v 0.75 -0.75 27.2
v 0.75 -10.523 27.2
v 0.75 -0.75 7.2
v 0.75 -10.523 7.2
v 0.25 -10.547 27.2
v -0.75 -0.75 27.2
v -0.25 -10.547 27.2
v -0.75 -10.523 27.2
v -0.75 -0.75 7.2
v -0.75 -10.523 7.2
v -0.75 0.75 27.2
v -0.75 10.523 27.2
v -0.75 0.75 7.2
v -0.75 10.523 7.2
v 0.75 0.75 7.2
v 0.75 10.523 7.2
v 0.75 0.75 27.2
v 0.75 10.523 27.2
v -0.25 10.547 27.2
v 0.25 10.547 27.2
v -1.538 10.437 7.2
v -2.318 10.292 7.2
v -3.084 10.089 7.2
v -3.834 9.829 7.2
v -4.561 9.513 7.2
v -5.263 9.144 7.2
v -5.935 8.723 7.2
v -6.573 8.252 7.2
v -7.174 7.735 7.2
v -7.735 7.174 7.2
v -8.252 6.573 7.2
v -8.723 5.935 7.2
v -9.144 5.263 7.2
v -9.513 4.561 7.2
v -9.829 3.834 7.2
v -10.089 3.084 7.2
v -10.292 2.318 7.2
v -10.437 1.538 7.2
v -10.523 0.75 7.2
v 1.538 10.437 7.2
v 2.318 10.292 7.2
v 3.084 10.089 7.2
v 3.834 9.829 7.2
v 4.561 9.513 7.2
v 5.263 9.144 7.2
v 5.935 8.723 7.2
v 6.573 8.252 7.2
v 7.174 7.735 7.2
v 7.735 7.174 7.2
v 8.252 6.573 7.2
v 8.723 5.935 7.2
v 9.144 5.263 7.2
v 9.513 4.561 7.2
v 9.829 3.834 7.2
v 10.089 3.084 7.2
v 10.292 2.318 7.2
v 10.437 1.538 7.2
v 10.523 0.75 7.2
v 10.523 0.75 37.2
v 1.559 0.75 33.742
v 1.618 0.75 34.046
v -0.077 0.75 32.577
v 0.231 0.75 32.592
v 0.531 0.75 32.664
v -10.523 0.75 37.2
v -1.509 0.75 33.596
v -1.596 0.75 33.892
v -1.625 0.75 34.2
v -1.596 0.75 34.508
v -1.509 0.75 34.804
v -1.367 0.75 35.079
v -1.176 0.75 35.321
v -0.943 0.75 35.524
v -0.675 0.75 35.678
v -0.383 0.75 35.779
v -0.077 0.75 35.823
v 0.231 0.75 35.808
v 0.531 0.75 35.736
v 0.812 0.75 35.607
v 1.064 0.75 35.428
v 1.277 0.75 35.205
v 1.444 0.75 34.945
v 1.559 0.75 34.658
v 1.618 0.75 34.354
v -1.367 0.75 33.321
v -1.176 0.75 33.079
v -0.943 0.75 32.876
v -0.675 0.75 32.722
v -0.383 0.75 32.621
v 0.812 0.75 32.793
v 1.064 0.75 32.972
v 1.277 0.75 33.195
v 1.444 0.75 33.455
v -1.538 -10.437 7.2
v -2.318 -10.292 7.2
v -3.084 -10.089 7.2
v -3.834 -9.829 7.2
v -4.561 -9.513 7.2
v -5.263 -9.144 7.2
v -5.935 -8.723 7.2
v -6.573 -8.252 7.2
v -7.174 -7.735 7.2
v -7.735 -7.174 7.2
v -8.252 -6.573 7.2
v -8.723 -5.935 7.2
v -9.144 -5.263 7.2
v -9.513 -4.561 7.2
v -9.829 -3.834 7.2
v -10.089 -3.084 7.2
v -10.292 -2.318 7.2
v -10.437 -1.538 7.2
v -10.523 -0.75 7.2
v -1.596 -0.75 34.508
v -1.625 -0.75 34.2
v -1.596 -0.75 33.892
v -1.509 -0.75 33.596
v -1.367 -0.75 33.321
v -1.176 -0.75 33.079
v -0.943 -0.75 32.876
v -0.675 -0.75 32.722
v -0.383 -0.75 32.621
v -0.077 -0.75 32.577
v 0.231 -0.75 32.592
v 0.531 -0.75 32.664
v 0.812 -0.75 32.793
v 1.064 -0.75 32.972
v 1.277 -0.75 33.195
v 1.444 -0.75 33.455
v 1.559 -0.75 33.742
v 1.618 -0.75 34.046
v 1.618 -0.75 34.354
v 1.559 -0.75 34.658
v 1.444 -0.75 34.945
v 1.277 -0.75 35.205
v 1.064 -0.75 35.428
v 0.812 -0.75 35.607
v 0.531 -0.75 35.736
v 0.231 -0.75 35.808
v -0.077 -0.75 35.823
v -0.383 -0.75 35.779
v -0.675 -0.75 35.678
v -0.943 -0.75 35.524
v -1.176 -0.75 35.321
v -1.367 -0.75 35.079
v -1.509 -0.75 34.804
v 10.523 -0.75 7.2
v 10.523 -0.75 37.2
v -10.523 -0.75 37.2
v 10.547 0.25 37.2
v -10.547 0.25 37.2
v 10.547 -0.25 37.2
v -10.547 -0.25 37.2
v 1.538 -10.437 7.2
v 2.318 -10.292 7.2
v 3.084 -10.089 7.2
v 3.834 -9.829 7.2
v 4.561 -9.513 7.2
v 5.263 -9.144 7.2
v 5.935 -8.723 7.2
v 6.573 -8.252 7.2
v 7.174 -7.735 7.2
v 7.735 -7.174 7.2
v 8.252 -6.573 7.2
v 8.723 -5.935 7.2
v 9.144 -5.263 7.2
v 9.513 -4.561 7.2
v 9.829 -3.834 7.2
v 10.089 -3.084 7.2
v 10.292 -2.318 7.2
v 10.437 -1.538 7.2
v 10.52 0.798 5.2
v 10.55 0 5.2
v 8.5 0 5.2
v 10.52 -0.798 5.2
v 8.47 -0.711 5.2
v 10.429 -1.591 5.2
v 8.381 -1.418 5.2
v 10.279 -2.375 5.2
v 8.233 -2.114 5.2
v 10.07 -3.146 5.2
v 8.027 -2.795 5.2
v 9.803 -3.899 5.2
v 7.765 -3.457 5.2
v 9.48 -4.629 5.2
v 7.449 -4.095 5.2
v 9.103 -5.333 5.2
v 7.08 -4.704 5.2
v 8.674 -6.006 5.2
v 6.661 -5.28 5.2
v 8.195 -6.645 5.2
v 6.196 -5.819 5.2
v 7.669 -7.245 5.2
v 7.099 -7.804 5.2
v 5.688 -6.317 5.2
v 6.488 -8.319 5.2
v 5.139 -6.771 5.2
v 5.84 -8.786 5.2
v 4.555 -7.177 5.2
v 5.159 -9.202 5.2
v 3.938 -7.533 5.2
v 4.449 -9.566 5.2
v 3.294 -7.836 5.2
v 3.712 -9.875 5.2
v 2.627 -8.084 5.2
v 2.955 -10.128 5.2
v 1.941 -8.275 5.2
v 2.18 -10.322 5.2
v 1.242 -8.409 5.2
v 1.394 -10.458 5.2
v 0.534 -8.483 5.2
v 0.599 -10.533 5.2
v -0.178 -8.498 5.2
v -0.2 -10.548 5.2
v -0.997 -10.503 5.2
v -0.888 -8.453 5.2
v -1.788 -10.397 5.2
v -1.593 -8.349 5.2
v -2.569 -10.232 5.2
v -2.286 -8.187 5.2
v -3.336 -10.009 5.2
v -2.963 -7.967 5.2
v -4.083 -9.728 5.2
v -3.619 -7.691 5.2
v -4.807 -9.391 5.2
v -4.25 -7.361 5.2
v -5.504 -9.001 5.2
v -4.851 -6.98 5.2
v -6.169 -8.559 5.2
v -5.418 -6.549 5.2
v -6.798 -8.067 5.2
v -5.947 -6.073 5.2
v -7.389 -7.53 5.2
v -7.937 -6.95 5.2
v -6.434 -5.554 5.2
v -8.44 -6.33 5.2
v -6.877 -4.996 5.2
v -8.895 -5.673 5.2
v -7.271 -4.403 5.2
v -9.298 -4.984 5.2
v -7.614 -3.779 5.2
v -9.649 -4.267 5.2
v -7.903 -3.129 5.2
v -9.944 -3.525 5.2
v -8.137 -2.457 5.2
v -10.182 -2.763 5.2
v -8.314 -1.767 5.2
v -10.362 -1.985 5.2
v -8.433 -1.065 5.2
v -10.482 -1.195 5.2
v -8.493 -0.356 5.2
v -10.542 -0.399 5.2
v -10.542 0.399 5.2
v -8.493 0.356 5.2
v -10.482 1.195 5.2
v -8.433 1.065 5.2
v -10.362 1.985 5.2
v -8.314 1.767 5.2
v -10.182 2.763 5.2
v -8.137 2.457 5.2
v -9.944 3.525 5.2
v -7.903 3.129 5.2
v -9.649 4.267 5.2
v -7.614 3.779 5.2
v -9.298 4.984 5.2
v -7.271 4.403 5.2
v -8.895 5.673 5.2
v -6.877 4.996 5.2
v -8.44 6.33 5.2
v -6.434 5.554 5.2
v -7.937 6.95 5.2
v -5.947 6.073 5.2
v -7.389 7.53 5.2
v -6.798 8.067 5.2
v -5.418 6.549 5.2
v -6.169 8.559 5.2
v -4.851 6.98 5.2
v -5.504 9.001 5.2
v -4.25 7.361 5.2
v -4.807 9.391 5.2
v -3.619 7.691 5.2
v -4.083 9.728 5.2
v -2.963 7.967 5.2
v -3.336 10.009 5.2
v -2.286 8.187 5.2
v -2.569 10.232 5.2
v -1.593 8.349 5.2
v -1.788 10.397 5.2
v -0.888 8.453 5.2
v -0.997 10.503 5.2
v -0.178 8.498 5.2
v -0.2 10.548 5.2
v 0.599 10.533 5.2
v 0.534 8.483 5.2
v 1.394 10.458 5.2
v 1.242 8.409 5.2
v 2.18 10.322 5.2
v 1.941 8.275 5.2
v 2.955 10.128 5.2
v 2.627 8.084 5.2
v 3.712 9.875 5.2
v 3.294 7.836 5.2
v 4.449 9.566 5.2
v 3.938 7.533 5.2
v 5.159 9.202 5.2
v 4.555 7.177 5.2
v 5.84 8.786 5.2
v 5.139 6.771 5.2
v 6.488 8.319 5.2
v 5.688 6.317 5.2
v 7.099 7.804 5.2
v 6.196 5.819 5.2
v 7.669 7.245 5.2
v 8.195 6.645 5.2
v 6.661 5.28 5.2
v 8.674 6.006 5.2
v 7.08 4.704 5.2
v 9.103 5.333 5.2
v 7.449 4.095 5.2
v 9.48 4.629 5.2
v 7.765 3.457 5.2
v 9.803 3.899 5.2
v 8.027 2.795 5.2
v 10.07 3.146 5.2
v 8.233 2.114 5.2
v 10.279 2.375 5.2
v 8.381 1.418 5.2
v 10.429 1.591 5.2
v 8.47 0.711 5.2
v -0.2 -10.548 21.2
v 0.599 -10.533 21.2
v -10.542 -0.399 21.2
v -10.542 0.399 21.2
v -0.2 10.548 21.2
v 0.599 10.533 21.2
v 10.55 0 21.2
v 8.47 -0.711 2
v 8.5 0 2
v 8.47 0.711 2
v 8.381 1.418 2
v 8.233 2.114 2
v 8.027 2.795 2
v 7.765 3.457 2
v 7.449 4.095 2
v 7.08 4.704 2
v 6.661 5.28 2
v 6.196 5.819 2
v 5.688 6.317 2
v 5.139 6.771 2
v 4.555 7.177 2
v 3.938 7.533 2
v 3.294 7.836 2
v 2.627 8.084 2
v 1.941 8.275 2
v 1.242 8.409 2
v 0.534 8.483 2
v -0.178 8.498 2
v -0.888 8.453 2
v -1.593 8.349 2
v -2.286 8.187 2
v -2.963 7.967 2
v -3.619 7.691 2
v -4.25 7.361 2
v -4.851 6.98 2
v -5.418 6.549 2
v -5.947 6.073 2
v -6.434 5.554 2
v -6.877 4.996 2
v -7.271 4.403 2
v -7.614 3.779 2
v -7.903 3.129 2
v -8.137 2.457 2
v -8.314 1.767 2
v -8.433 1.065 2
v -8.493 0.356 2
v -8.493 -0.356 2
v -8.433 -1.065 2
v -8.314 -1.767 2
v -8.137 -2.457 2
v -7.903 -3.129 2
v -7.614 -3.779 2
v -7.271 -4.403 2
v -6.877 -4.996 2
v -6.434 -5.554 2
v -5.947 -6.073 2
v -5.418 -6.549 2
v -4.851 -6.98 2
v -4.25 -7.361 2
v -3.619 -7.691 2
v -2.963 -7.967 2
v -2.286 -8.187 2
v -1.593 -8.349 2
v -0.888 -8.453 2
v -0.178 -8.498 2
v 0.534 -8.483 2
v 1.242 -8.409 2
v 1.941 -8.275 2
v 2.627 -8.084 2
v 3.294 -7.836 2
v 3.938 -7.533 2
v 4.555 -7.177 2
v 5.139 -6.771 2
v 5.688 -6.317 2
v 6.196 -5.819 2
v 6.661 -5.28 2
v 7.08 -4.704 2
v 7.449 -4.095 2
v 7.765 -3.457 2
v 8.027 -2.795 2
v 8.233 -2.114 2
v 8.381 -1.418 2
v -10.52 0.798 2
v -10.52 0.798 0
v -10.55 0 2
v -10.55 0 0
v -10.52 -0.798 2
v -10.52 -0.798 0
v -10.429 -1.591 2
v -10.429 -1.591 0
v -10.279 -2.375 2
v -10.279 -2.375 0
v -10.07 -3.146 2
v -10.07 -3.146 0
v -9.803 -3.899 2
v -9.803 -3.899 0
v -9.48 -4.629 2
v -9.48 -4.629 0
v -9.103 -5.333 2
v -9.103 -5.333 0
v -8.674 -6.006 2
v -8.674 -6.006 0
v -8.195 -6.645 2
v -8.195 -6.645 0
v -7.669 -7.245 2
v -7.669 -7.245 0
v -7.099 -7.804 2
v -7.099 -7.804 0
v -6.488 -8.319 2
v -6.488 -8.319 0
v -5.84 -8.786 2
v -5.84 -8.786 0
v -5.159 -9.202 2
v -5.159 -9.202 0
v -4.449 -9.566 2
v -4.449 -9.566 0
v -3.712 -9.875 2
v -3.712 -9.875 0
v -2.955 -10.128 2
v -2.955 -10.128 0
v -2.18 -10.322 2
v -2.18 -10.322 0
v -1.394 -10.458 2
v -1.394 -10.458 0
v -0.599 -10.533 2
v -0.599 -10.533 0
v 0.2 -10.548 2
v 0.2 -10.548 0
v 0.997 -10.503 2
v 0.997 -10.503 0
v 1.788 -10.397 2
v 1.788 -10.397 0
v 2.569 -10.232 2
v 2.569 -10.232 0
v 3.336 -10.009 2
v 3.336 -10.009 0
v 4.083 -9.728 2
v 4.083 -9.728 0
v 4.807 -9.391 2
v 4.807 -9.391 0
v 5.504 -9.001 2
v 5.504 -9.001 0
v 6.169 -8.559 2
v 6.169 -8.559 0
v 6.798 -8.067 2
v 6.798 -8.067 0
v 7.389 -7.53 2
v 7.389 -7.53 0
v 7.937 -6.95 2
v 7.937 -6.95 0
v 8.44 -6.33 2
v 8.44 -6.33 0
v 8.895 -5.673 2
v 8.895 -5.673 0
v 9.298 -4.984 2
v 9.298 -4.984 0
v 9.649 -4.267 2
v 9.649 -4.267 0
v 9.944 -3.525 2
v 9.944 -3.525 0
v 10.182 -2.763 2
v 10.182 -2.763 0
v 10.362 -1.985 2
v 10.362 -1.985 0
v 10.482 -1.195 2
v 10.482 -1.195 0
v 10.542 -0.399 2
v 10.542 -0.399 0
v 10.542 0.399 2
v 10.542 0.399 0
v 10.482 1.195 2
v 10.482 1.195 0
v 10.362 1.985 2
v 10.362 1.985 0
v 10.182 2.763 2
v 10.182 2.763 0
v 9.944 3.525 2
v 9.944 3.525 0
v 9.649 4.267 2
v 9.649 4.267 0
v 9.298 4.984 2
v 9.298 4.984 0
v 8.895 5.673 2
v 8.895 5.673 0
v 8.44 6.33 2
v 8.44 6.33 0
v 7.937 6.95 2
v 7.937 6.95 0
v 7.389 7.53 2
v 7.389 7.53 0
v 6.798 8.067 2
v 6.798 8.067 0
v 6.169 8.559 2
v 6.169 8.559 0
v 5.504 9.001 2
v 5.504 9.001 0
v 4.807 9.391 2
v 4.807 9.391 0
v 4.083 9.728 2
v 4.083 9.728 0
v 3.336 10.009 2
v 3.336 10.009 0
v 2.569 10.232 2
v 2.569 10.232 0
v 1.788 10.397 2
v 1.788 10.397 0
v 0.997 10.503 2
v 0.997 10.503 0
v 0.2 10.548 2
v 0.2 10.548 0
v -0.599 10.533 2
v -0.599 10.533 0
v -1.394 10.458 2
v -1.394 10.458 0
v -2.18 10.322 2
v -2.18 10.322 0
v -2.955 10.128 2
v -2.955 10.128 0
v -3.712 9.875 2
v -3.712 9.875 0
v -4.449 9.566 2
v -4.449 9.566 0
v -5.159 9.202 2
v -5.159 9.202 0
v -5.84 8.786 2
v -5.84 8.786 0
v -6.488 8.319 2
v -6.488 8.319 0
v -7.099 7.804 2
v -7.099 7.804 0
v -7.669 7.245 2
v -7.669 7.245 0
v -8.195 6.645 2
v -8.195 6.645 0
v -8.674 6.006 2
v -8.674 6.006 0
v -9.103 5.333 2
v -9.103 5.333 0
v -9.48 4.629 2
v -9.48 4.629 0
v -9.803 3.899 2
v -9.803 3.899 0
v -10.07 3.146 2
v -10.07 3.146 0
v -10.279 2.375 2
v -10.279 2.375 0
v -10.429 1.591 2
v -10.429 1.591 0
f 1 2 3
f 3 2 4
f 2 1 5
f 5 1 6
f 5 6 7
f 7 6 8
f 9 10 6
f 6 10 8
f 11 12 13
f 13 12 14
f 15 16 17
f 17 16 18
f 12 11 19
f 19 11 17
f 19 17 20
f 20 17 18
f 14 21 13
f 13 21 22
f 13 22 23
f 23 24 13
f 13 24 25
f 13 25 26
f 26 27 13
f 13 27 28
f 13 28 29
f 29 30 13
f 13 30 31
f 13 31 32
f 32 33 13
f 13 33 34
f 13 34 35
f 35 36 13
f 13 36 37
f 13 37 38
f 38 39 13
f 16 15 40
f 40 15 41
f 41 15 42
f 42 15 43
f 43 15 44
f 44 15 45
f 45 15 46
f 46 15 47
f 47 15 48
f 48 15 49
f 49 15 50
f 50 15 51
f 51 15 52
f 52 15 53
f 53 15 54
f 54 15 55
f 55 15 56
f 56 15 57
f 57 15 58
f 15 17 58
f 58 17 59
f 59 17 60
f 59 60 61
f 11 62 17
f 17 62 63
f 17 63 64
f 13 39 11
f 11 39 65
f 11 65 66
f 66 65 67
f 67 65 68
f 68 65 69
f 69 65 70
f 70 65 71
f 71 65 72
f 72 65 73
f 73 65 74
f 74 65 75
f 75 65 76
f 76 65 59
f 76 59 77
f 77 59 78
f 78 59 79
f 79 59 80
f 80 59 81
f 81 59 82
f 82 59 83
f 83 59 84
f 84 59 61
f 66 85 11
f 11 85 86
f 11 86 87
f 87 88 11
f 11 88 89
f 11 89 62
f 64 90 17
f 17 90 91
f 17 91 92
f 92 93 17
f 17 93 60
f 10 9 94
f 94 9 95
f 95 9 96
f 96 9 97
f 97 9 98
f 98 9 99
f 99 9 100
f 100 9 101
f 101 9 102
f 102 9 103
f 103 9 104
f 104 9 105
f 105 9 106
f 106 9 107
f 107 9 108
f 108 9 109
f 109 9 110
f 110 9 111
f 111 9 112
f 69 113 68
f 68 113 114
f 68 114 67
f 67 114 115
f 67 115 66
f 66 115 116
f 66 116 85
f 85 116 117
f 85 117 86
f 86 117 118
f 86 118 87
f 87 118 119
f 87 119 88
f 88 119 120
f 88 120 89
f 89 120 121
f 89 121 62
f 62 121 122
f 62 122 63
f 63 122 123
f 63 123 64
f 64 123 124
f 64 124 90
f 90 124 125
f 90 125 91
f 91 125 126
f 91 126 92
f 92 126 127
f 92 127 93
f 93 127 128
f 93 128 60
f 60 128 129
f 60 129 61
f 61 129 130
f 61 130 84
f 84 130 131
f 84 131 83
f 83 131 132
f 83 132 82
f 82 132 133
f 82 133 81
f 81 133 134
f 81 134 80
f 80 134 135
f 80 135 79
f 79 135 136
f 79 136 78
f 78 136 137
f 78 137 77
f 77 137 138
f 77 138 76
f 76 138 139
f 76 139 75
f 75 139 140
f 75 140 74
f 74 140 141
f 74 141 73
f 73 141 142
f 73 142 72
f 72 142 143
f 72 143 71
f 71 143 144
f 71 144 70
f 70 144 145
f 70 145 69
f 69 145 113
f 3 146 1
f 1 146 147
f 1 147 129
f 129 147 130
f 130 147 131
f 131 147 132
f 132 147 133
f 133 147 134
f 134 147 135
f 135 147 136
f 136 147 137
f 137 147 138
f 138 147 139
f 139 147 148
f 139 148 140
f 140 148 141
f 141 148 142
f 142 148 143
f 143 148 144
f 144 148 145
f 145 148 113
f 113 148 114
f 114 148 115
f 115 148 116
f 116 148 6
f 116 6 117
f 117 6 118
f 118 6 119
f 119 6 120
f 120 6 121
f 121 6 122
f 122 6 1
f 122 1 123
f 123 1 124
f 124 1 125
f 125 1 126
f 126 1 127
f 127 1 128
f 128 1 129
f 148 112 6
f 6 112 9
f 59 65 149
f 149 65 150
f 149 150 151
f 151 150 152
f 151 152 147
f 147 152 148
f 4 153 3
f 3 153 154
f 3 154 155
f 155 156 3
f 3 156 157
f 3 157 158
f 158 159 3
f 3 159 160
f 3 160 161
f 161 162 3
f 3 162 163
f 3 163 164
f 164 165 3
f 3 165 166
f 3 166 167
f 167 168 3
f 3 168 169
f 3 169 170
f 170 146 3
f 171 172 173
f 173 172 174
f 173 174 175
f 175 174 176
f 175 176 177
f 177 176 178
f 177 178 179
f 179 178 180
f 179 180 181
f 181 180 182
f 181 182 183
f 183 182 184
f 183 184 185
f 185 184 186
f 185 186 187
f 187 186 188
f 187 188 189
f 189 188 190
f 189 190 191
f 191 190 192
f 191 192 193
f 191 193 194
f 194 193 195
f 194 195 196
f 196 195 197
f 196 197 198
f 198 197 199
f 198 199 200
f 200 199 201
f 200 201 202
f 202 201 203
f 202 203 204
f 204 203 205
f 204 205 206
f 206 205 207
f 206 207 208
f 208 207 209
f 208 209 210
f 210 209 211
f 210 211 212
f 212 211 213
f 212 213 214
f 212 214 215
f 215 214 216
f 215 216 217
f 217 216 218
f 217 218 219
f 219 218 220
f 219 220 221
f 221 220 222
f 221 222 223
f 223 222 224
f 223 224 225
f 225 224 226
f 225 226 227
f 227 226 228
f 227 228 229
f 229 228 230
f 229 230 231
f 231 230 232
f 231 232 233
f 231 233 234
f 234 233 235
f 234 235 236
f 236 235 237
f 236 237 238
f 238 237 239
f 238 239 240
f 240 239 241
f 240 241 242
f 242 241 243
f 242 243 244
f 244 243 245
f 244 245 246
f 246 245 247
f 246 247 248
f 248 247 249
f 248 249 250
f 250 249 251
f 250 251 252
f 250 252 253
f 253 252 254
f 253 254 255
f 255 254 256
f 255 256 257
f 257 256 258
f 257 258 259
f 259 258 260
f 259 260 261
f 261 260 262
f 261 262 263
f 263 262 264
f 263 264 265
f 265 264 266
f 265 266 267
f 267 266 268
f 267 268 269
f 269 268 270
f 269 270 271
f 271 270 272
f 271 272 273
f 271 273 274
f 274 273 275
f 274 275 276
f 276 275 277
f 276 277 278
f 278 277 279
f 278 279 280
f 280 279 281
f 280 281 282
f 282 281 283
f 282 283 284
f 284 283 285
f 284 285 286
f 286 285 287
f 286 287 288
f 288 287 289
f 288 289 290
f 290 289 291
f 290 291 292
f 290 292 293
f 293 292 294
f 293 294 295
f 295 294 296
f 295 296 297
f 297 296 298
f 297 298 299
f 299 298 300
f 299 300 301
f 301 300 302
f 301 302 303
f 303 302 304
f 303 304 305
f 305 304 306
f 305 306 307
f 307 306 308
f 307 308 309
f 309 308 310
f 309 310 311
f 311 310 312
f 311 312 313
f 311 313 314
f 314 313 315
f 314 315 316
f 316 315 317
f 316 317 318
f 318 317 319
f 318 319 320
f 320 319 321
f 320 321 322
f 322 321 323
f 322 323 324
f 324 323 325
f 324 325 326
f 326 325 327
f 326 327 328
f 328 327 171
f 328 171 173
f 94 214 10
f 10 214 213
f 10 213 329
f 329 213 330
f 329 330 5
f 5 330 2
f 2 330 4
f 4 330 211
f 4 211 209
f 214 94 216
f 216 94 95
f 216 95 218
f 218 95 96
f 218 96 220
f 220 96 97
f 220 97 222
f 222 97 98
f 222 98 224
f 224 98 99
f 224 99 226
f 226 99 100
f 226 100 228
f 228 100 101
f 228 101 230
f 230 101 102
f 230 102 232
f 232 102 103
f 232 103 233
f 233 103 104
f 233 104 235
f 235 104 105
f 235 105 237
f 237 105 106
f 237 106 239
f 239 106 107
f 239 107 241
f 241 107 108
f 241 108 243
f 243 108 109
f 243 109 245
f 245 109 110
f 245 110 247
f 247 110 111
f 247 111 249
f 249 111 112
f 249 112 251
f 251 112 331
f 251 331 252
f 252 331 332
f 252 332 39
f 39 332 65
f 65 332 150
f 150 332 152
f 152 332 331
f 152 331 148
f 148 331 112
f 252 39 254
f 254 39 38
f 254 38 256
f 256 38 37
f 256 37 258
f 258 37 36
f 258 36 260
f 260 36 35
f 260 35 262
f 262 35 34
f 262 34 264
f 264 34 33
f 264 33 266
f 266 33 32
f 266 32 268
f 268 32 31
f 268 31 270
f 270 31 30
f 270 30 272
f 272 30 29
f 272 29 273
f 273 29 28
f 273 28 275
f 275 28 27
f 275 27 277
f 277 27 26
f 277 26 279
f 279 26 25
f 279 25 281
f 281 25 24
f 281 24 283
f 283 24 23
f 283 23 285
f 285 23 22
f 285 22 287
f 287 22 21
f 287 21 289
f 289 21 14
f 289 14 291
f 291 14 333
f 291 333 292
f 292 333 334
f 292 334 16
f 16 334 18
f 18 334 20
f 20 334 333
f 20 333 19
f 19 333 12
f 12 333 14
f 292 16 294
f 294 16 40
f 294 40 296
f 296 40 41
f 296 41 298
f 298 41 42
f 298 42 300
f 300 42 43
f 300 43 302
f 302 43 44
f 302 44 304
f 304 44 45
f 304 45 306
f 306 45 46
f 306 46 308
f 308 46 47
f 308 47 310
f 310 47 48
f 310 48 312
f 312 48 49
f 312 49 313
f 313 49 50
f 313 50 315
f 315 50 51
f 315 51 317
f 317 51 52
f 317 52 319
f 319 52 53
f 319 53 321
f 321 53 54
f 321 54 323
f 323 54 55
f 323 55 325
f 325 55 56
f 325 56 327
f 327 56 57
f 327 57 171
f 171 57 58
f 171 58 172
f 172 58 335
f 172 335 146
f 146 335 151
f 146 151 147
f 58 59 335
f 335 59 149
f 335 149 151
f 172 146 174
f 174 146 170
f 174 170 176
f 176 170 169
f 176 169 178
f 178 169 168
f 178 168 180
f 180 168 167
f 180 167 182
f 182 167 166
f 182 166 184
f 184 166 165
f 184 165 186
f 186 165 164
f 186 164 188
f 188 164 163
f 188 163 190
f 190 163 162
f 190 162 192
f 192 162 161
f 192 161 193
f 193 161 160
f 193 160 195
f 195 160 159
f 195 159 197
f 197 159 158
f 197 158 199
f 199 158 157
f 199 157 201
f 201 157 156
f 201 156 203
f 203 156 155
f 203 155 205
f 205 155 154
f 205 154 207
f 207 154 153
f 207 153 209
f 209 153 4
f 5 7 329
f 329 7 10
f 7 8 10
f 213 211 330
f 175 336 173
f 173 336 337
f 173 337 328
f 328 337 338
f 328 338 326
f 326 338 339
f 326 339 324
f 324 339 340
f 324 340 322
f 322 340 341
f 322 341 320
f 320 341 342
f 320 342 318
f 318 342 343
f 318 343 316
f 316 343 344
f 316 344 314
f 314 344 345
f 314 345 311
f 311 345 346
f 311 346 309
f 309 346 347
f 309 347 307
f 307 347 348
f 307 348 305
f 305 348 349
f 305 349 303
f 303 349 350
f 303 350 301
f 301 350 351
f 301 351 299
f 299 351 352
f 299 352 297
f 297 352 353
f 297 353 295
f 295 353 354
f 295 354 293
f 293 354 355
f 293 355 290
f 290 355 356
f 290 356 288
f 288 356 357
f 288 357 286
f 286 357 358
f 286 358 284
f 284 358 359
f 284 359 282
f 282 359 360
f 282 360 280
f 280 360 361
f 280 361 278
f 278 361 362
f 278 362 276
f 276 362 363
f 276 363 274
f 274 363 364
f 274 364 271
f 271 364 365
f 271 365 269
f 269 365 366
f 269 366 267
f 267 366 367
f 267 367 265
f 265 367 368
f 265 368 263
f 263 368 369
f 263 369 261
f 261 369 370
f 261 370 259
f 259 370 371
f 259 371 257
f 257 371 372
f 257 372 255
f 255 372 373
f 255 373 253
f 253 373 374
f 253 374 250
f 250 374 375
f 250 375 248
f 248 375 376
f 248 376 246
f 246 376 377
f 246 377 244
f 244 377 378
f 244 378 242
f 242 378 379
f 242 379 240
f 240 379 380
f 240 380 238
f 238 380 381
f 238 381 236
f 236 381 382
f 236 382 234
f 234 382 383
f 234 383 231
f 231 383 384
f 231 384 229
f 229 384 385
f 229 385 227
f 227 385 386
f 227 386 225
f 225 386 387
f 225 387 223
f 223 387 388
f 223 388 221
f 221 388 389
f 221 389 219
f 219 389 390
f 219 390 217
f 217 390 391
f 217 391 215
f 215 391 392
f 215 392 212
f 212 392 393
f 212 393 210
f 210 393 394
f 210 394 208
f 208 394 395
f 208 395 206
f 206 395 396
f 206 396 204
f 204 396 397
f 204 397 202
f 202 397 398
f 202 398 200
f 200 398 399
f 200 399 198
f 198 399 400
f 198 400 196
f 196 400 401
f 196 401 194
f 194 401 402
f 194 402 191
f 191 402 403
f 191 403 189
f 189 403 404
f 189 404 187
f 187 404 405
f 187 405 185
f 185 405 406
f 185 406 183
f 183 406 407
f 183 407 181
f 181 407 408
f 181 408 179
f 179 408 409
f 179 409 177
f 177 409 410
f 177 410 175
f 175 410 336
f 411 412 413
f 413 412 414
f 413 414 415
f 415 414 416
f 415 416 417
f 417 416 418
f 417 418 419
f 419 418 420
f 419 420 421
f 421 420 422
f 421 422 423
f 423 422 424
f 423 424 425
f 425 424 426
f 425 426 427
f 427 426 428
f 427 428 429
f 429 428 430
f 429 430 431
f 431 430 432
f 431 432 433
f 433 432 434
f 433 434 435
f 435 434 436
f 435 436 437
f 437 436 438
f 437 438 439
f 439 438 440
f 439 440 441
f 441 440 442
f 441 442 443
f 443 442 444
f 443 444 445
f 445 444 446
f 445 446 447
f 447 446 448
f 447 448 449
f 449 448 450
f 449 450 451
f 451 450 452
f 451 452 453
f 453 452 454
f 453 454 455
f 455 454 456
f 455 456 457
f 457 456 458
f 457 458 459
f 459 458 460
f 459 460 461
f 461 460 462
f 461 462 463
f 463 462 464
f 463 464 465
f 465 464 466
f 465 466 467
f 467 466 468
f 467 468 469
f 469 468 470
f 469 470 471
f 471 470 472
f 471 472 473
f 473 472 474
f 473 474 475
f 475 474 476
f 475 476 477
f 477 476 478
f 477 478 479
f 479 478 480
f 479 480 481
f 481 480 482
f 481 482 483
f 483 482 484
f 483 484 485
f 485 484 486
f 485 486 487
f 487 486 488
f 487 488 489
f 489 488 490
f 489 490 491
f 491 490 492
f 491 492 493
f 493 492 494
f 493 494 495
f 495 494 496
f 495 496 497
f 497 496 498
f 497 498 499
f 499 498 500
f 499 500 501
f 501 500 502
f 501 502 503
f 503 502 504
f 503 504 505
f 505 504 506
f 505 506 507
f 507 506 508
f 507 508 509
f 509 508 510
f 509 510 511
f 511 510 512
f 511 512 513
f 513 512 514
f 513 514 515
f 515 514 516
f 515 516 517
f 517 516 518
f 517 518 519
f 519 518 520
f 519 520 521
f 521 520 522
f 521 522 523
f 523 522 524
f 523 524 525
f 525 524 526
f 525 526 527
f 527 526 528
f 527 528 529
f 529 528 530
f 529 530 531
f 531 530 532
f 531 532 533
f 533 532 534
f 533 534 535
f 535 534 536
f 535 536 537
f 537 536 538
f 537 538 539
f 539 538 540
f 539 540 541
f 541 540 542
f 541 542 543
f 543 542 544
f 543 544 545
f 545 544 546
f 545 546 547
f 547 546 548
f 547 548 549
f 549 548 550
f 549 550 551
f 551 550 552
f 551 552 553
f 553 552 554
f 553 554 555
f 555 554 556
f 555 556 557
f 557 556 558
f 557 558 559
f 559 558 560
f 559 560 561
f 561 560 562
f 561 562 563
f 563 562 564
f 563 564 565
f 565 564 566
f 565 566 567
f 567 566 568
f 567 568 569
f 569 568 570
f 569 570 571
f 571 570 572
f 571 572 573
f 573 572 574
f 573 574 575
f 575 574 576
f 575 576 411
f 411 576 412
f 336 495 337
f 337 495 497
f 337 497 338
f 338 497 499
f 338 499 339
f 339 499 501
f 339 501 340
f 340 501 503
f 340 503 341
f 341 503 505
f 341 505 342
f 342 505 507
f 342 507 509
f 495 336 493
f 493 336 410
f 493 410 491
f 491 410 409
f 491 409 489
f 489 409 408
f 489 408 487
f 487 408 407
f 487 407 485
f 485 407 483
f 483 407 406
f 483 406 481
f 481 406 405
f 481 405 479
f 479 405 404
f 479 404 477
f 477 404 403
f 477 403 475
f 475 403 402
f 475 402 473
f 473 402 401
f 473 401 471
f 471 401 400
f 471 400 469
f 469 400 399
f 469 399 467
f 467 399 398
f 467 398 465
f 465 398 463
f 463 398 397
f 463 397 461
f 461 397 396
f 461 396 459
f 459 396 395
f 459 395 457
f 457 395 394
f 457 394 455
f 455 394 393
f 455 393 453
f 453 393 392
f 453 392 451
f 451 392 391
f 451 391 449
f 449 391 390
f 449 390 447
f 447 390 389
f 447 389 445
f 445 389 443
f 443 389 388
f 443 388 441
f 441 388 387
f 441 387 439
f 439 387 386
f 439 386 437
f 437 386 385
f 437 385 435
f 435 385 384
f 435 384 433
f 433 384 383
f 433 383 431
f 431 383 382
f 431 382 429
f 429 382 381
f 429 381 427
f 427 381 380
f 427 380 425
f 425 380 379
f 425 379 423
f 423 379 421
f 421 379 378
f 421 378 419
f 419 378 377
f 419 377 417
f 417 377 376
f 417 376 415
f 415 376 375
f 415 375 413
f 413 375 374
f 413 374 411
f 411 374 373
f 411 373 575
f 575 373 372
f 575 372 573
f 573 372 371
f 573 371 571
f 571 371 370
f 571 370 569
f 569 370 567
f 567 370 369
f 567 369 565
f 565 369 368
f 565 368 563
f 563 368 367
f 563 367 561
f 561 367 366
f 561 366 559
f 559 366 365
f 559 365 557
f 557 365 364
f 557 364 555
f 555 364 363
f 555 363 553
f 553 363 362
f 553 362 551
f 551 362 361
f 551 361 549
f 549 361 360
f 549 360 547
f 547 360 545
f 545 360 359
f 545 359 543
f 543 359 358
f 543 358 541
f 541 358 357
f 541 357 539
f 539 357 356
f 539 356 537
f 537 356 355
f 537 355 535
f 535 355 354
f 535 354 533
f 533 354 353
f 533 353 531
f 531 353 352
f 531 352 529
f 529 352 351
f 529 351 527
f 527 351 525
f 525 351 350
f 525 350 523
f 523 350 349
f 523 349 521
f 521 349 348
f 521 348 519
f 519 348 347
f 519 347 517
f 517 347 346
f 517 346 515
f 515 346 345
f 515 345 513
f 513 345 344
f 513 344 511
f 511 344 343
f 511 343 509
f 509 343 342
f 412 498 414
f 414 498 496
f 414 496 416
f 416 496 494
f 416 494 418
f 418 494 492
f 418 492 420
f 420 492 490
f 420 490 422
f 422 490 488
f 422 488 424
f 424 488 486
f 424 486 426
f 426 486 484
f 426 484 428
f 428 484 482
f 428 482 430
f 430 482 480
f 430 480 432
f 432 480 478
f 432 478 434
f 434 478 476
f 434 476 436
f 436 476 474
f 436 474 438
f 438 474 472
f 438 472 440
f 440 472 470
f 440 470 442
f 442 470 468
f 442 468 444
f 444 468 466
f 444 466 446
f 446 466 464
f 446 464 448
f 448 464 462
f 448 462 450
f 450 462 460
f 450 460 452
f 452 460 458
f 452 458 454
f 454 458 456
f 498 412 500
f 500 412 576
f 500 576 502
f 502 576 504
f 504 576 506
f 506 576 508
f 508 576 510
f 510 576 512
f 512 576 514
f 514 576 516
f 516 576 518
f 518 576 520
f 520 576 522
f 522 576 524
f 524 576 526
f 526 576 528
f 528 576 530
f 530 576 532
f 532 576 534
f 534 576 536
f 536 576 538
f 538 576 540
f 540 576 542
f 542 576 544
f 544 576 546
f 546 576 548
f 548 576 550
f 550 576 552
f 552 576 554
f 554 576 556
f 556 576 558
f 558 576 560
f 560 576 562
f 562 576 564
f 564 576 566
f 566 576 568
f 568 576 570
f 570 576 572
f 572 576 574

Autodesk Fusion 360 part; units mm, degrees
sketch "スケッチ1" plane through (0, 0, 0) normal (0, 0, 1) x (1, 0, 0)
  circle A0 centre (0, 0) radius 10.55
  dimension "d1" = 21.1
extrude "押し出し1" add sketch "スケッチ1" along normal blind 2
sketch "スケッチ2" plane through (0, 0, 2) normal (0, 0, 1) x (-1, 0, 0)
  circle A0 centre (0, 0) radius 10.55
  circle A1 centre (0, 0) radius 8.5
  dimension "d4" = 17
extrude "押し出し2" add sketch "スケッチ2" along normal blind 3.2 contours A1
sketch "スケッチ3" plane through (0, 0, 5.2) normal (0, 0, 1) x (-1, 0, 0)
  circle A0 centre (0, 0) radius 8.5
  circle A1 centre (0, 0) radius 10.55
extrude "押し出し3" add sketch "スケッチ3" along normal blind 2 contours A0 | A1
sketch "スケッチ4" plane through (0, 0, 7.2) normal (0, 0, 1) x (-1, 0, 0)
  line L0 (10.5233, -0.75) -> (-10.5233, -0.75)
  line L1 (10.5233, 0.75) -> (-10.5233, 0.75)
  circle A0 centre (0, 0) radius 10.55
  dimension "d24" = 0.75
  dimension "d25" = 0.75
extrude "押し出し7" add sketch "スケッチ4" along normal blind 30 contours L0 L1 A0
sketch "スケッチ5" plane through (0, -0.75, 0) normal (0, -1, 0) x (1, 0, 0)
  line L0 (-10.4732, 7.2) -> (10.4732, 7.2)
  line L1 (10.5, 7.2) -> (10.5, 37.2)
  line L2 (10.5, 37.2) -> (-10.5, 37.2)
  line L3 (-10.5, 37.2) -> (-10.5, 7.2)
  circle A0 centre (0, 34.2) radius 1.625
  line L4 (0, 34.2) -> (0, 37.2) construction
  line L5 (10.4732, 7.2) -> (10.5, 7.2)
  line L6 (-10.5, 7.2) -> (-10.4732, 7.2)
  line L7 (-10.5233, 7.2) -> (10.5233, 7.2)
  line L8 (10.5233, 7.2) -> (10.5233, 37.2)
  line L9 (10.5233, 37.2) -> (-10.5233, 37.2)
  line L10 (-10.5233, 37.2) -> (-10.5233, 7.2)
  dimension "d13" = 3.25
  dimension "d14" = 3
extrude "押し出し8" cut sketch "スケッチ5" against normal up to surface (1.5 mm away) contours A0
sketch "スケッチ8" plane through (0, 0, 7.2) normal (0, 0, 1) x (-1, 0, 0)
  line L0 (-10.5233, 0.75) -> (10.5233, 0.75)
  arc A0 (10.5233, 0.75) -> (-10.5233, 0.75) centre (0, 0) ccw
  line L1 (0.75, -10.5233) -> (0.75, 10.5233)
  line L2 (-0.75, -10.5233) -> (-0.75, 10.5233)
  arc A1 (-10.5233, -0.75) -> (10.5233, -0.75) centre (0, 0) ccw
  dimension "d30" = 0.75
  dimension "d31" = 0.75
extrude "押し出し9" add sketch "スケッチ8" along normal blind 20 contours L0 A0 L1 L2 | L0 L1 L2 A1
